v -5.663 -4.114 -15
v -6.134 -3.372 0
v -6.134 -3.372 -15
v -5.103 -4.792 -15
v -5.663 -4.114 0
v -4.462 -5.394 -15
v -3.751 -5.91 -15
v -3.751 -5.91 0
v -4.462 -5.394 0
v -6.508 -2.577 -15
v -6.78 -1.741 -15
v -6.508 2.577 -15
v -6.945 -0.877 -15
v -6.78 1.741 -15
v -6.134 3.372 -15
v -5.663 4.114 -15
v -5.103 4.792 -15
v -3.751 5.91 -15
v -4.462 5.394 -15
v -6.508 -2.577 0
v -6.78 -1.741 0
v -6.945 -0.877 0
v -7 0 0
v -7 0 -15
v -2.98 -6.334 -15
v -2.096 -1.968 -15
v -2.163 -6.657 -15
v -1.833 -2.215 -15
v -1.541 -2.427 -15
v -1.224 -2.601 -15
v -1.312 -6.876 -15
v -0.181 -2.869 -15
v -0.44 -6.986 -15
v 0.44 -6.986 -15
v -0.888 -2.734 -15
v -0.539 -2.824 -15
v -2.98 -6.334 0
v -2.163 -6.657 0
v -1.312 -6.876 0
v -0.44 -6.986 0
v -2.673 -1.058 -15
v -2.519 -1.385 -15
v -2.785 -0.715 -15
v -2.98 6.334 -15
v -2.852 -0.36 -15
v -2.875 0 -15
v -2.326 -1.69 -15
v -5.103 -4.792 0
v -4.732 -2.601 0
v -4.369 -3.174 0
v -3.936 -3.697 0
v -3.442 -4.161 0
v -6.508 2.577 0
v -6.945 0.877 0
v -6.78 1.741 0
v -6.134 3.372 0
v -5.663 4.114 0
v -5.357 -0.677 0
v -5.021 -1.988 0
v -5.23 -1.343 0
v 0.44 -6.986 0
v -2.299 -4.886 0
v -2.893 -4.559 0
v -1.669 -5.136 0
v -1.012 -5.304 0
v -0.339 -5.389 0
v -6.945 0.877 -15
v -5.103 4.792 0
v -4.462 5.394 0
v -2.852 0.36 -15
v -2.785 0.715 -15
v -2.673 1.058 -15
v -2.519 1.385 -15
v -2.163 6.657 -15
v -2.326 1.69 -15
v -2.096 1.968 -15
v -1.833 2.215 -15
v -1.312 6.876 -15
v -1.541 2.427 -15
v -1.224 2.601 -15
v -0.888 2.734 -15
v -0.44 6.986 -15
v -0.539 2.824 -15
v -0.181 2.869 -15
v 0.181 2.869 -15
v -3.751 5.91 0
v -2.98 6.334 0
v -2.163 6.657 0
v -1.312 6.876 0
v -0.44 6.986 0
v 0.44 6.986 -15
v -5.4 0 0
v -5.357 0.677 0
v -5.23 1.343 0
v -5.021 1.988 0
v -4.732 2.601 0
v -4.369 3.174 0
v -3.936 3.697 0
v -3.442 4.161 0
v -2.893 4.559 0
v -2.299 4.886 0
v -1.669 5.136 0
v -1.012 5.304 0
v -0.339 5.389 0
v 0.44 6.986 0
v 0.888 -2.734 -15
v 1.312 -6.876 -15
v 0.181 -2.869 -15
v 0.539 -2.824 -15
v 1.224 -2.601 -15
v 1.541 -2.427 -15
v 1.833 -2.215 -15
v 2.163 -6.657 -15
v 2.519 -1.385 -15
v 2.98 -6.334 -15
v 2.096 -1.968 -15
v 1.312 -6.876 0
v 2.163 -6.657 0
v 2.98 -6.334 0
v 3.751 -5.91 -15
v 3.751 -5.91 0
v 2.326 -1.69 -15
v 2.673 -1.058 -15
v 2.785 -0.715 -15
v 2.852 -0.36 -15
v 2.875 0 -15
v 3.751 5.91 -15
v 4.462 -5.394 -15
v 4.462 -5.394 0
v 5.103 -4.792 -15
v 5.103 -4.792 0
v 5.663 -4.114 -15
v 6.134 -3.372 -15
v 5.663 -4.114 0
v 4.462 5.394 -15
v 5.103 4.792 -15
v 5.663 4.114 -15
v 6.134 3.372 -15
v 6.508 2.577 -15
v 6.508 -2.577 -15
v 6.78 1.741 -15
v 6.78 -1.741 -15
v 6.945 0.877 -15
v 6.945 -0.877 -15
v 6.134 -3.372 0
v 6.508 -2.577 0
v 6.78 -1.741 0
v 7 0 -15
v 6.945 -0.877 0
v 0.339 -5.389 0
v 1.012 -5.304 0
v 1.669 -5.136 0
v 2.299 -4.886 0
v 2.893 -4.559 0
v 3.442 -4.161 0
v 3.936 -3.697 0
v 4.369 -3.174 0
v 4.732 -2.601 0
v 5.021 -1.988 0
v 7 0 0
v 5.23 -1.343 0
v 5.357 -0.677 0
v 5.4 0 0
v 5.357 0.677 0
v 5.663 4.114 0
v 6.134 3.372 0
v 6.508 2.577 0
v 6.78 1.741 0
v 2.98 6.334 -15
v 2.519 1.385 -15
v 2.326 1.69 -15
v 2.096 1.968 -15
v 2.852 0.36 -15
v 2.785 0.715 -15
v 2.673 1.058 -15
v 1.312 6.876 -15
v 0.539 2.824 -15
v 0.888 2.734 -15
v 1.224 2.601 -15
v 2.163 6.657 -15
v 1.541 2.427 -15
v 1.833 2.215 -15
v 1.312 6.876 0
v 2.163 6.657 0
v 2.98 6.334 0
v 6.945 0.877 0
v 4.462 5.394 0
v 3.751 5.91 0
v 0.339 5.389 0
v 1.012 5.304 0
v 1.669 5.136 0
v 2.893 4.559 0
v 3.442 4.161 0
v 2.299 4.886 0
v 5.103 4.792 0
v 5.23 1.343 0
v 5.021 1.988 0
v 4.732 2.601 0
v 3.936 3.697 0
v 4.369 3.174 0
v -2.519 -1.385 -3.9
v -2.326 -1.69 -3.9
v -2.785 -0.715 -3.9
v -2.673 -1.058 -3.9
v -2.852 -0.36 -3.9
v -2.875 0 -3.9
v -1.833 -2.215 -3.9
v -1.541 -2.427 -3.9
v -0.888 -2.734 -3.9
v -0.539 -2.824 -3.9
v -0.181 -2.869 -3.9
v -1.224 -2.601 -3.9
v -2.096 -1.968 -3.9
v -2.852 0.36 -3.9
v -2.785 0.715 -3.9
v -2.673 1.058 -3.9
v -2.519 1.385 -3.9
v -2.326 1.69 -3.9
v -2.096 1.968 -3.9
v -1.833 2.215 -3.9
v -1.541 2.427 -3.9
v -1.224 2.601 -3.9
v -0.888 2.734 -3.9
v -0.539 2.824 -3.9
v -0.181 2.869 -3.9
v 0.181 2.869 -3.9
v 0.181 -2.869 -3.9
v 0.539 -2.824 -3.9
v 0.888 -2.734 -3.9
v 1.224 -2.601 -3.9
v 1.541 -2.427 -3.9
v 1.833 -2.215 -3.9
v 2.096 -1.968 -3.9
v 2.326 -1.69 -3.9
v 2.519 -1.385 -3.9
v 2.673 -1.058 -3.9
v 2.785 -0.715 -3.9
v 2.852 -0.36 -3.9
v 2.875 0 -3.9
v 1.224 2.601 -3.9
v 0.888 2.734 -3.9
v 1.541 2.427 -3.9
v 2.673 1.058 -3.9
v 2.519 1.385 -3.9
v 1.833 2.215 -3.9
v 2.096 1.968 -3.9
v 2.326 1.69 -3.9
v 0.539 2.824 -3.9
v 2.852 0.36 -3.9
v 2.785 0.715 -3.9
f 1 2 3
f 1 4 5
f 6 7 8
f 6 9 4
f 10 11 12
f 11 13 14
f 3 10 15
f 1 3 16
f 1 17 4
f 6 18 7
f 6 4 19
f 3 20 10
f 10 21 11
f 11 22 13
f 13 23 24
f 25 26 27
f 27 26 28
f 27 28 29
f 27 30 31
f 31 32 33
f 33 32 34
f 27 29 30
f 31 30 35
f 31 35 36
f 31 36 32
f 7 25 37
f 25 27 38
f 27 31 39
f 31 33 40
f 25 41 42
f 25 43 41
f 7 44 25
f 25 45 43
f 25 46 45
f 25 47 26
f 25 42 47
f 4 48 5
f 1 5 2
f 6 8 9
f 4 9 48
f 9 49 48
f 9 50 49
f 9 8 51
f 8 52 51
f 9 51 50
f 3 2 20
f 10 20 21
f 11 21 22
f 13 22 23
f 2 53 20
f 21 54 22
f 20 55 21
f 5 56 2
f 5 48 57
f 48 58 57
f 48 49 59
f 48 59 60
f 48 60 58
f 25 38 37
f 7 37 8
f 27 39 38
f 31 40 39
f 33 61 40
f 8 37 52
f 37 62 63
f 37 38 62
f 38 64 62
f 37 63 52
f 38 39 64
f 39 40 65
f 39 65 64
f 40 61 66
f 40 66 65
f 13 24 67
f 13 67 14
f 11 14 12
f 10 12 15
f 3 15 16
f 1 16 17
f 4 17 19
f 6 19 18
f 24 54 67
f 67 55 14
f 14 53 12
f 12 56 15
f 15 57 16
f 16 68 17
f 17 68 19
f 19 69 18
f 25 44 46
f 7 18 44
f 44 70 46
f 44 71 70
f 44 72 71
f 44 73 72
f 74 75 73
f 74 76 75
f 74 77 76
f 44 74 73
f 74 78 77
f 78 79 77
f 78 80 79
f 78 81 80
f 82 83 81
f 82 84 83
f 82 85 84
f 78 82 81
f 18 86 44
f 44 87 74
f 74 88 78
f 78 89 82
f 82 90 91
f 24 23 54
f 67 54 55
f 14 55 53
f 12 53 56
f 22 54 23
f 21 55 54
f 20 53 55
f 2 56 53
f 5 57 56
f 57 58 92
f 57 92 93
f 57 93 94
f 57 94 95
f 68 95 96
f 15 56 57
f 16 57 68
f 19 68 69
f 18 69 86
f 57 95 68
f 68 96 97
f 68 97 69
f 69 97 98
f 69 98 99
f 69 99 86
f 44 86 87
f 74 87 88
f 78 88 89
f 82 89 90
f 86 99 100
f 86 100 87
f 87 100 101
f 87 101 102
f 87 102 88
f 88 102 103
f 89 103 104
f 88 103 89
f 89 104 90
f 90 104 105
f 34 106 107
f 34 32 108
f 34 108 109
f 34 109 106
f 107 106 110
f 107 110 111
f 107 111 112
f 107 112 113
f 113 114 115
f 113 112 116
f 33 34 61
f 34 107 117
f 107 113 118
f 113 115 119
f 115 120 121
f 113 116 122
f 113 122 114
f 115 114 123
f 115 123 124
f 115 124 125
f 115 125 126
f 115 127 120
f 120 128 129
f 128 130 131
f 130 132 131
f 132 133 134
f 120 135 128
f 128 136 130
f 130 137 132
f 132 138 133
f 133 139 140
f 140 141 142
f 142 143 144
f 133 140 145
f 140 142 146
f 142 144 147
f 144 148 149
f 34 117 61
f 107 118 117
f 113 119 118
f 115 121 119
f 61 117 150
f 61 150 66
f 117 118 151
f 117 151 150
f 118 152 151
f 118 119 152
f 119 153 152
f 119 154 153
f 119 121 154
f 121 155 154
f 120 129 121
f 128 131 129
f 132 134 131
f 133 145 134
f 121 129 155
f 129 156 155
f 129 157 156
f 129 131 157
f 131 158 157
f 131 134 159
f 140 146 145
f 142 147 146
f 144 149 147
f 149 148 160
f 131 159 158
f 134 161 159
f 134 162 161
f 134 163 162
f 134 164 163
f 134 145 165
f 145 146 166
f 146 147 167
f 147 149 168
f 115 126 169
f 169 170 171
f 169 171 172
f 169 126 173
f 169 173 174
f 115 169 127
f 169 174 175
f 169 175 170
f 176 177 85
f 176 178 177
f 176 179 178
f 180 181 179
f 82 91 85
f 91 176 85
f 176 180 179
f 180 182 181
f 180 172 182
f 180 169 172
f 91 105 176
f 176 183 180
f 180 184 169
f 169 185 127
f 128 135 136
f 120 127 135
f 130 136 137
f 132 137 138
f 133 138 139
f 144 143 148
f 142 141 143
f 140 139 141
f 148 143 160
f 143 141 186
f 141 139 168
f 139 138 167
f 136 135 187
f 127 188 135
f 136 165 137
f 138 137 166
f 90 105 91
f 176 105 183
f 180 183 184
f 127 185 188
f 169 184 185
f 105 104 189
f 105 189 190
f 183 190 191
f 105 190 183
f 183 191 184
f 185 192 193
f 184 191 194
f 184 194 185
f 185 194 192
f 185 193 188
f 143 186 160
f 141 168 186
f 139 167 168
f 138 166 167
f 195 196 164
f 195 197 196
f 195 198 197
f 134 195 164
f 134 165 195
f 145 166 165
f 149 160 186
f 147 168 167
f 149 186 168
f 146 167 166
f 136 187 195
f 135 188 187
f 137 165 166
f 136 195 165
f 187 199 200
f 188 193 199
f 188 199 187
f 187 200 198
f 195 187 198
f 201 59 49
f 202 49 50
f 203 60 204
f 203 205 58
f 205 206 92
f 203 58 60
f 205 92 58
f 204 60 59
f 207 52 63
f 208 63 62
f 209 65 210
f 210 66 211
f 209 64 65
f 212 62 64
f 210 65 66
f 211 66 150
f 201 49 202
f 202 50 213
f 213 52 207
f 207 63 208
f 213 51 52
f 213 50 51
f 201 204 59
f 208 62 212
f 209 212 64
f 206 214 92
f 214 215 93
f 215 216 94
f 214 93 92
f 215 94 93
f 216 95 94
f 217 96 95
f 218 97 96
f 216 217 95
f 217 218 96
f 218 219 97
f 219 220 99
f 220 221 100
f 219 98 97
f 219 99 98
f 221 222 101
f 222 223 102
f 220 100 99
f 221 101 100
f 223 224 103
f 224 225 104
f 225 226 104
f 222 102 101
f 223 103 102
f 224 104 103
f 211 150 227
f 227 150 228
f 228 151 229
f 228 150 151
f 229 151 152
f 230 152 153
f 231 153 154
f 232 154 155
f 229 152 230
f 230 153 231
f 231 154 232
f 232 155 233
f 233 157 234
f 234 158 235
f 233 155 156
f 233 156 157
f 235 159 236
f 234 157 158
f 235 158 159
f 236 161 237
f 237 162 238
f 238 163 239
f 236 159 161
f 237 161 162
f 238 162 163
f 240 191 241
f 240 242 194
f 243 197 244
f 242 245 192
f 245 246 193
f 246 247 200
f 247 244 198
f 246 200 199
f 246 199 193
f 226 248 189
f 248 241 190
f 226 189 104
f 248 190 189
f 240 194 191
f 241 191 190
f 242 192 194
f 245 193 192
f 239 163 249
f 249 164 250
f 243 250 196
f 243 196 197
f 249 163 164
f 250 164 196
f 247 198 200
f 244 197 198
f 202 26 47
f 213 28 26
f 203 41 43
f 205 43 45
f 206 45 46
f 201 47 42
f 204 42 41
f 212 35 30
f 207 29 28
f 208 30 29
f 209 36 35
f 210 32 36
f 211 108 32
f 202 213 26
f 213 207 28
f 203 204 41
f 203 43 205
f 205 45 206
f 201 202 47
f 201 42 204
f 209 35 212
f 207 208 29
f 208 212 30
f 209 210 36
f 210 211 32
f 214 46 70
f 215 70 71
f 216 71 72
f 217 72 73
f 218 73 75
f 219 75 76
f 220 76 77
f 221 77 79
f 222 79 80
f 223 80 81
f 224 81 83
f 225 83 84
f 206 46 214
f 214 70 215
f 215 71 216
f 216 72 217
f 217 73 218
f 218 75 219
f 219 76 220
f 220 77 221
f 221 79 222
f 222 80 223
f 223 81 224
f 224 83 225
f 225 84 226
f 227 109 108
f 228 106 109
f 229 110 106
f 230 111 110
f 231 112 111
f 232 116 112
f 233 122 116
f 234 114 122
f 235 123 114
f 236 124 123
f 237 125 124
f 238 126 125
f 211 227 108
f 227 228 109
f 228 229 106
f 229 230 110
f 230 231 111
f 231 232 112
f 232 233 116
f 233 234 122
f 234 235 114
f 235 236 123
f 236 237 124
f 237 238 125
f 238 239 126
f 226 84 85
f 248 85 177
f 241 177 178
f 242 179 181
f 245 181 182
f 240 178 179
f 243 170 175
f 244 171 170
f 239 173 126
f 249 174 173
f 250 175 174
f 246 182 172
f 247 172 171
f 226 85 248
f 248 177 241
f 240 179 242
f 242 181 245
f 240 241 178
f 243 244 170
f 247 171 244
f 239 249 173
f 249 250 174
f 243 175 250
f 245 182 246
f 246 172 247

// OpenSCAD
$fn = 50;


difference() {
	union() {
		translate(v = [0, 0, -15.0000000000]) {
			cylinder(h = 15, r = 7.0000000000);
		}
		#translate(v = [0, 0, -18.0000000000]) {
			cylinder(h = 18, r = 2.8750000000);
		}
	}
	union() {
		translate(v = [0, 0, 0]) {
			rotate(a = [0, 0, 0]) {
				difference() {
					union() {
						translate(v = [0, 0, -18.0000000000]) {
							cylinder(h = 18, r = 2.6000000000);
						}
						translate(v = [0, 0, -3.9000000000]) {
							cylinder(h = 3.9000000000, r1 = 2.8750000000, r2 = 5.4000000000);
						}
						translate(v = [0, 0, -18.0000000000]) {
							cylinder(h = 18, r = 2.8750000000);
						}
						translate(v = [0, 0, -18.0000000000]) {
							cylinder(h = 18, r = 2.6000000000);
						}
					}
					union();
				}
			}
		}
	}
}
